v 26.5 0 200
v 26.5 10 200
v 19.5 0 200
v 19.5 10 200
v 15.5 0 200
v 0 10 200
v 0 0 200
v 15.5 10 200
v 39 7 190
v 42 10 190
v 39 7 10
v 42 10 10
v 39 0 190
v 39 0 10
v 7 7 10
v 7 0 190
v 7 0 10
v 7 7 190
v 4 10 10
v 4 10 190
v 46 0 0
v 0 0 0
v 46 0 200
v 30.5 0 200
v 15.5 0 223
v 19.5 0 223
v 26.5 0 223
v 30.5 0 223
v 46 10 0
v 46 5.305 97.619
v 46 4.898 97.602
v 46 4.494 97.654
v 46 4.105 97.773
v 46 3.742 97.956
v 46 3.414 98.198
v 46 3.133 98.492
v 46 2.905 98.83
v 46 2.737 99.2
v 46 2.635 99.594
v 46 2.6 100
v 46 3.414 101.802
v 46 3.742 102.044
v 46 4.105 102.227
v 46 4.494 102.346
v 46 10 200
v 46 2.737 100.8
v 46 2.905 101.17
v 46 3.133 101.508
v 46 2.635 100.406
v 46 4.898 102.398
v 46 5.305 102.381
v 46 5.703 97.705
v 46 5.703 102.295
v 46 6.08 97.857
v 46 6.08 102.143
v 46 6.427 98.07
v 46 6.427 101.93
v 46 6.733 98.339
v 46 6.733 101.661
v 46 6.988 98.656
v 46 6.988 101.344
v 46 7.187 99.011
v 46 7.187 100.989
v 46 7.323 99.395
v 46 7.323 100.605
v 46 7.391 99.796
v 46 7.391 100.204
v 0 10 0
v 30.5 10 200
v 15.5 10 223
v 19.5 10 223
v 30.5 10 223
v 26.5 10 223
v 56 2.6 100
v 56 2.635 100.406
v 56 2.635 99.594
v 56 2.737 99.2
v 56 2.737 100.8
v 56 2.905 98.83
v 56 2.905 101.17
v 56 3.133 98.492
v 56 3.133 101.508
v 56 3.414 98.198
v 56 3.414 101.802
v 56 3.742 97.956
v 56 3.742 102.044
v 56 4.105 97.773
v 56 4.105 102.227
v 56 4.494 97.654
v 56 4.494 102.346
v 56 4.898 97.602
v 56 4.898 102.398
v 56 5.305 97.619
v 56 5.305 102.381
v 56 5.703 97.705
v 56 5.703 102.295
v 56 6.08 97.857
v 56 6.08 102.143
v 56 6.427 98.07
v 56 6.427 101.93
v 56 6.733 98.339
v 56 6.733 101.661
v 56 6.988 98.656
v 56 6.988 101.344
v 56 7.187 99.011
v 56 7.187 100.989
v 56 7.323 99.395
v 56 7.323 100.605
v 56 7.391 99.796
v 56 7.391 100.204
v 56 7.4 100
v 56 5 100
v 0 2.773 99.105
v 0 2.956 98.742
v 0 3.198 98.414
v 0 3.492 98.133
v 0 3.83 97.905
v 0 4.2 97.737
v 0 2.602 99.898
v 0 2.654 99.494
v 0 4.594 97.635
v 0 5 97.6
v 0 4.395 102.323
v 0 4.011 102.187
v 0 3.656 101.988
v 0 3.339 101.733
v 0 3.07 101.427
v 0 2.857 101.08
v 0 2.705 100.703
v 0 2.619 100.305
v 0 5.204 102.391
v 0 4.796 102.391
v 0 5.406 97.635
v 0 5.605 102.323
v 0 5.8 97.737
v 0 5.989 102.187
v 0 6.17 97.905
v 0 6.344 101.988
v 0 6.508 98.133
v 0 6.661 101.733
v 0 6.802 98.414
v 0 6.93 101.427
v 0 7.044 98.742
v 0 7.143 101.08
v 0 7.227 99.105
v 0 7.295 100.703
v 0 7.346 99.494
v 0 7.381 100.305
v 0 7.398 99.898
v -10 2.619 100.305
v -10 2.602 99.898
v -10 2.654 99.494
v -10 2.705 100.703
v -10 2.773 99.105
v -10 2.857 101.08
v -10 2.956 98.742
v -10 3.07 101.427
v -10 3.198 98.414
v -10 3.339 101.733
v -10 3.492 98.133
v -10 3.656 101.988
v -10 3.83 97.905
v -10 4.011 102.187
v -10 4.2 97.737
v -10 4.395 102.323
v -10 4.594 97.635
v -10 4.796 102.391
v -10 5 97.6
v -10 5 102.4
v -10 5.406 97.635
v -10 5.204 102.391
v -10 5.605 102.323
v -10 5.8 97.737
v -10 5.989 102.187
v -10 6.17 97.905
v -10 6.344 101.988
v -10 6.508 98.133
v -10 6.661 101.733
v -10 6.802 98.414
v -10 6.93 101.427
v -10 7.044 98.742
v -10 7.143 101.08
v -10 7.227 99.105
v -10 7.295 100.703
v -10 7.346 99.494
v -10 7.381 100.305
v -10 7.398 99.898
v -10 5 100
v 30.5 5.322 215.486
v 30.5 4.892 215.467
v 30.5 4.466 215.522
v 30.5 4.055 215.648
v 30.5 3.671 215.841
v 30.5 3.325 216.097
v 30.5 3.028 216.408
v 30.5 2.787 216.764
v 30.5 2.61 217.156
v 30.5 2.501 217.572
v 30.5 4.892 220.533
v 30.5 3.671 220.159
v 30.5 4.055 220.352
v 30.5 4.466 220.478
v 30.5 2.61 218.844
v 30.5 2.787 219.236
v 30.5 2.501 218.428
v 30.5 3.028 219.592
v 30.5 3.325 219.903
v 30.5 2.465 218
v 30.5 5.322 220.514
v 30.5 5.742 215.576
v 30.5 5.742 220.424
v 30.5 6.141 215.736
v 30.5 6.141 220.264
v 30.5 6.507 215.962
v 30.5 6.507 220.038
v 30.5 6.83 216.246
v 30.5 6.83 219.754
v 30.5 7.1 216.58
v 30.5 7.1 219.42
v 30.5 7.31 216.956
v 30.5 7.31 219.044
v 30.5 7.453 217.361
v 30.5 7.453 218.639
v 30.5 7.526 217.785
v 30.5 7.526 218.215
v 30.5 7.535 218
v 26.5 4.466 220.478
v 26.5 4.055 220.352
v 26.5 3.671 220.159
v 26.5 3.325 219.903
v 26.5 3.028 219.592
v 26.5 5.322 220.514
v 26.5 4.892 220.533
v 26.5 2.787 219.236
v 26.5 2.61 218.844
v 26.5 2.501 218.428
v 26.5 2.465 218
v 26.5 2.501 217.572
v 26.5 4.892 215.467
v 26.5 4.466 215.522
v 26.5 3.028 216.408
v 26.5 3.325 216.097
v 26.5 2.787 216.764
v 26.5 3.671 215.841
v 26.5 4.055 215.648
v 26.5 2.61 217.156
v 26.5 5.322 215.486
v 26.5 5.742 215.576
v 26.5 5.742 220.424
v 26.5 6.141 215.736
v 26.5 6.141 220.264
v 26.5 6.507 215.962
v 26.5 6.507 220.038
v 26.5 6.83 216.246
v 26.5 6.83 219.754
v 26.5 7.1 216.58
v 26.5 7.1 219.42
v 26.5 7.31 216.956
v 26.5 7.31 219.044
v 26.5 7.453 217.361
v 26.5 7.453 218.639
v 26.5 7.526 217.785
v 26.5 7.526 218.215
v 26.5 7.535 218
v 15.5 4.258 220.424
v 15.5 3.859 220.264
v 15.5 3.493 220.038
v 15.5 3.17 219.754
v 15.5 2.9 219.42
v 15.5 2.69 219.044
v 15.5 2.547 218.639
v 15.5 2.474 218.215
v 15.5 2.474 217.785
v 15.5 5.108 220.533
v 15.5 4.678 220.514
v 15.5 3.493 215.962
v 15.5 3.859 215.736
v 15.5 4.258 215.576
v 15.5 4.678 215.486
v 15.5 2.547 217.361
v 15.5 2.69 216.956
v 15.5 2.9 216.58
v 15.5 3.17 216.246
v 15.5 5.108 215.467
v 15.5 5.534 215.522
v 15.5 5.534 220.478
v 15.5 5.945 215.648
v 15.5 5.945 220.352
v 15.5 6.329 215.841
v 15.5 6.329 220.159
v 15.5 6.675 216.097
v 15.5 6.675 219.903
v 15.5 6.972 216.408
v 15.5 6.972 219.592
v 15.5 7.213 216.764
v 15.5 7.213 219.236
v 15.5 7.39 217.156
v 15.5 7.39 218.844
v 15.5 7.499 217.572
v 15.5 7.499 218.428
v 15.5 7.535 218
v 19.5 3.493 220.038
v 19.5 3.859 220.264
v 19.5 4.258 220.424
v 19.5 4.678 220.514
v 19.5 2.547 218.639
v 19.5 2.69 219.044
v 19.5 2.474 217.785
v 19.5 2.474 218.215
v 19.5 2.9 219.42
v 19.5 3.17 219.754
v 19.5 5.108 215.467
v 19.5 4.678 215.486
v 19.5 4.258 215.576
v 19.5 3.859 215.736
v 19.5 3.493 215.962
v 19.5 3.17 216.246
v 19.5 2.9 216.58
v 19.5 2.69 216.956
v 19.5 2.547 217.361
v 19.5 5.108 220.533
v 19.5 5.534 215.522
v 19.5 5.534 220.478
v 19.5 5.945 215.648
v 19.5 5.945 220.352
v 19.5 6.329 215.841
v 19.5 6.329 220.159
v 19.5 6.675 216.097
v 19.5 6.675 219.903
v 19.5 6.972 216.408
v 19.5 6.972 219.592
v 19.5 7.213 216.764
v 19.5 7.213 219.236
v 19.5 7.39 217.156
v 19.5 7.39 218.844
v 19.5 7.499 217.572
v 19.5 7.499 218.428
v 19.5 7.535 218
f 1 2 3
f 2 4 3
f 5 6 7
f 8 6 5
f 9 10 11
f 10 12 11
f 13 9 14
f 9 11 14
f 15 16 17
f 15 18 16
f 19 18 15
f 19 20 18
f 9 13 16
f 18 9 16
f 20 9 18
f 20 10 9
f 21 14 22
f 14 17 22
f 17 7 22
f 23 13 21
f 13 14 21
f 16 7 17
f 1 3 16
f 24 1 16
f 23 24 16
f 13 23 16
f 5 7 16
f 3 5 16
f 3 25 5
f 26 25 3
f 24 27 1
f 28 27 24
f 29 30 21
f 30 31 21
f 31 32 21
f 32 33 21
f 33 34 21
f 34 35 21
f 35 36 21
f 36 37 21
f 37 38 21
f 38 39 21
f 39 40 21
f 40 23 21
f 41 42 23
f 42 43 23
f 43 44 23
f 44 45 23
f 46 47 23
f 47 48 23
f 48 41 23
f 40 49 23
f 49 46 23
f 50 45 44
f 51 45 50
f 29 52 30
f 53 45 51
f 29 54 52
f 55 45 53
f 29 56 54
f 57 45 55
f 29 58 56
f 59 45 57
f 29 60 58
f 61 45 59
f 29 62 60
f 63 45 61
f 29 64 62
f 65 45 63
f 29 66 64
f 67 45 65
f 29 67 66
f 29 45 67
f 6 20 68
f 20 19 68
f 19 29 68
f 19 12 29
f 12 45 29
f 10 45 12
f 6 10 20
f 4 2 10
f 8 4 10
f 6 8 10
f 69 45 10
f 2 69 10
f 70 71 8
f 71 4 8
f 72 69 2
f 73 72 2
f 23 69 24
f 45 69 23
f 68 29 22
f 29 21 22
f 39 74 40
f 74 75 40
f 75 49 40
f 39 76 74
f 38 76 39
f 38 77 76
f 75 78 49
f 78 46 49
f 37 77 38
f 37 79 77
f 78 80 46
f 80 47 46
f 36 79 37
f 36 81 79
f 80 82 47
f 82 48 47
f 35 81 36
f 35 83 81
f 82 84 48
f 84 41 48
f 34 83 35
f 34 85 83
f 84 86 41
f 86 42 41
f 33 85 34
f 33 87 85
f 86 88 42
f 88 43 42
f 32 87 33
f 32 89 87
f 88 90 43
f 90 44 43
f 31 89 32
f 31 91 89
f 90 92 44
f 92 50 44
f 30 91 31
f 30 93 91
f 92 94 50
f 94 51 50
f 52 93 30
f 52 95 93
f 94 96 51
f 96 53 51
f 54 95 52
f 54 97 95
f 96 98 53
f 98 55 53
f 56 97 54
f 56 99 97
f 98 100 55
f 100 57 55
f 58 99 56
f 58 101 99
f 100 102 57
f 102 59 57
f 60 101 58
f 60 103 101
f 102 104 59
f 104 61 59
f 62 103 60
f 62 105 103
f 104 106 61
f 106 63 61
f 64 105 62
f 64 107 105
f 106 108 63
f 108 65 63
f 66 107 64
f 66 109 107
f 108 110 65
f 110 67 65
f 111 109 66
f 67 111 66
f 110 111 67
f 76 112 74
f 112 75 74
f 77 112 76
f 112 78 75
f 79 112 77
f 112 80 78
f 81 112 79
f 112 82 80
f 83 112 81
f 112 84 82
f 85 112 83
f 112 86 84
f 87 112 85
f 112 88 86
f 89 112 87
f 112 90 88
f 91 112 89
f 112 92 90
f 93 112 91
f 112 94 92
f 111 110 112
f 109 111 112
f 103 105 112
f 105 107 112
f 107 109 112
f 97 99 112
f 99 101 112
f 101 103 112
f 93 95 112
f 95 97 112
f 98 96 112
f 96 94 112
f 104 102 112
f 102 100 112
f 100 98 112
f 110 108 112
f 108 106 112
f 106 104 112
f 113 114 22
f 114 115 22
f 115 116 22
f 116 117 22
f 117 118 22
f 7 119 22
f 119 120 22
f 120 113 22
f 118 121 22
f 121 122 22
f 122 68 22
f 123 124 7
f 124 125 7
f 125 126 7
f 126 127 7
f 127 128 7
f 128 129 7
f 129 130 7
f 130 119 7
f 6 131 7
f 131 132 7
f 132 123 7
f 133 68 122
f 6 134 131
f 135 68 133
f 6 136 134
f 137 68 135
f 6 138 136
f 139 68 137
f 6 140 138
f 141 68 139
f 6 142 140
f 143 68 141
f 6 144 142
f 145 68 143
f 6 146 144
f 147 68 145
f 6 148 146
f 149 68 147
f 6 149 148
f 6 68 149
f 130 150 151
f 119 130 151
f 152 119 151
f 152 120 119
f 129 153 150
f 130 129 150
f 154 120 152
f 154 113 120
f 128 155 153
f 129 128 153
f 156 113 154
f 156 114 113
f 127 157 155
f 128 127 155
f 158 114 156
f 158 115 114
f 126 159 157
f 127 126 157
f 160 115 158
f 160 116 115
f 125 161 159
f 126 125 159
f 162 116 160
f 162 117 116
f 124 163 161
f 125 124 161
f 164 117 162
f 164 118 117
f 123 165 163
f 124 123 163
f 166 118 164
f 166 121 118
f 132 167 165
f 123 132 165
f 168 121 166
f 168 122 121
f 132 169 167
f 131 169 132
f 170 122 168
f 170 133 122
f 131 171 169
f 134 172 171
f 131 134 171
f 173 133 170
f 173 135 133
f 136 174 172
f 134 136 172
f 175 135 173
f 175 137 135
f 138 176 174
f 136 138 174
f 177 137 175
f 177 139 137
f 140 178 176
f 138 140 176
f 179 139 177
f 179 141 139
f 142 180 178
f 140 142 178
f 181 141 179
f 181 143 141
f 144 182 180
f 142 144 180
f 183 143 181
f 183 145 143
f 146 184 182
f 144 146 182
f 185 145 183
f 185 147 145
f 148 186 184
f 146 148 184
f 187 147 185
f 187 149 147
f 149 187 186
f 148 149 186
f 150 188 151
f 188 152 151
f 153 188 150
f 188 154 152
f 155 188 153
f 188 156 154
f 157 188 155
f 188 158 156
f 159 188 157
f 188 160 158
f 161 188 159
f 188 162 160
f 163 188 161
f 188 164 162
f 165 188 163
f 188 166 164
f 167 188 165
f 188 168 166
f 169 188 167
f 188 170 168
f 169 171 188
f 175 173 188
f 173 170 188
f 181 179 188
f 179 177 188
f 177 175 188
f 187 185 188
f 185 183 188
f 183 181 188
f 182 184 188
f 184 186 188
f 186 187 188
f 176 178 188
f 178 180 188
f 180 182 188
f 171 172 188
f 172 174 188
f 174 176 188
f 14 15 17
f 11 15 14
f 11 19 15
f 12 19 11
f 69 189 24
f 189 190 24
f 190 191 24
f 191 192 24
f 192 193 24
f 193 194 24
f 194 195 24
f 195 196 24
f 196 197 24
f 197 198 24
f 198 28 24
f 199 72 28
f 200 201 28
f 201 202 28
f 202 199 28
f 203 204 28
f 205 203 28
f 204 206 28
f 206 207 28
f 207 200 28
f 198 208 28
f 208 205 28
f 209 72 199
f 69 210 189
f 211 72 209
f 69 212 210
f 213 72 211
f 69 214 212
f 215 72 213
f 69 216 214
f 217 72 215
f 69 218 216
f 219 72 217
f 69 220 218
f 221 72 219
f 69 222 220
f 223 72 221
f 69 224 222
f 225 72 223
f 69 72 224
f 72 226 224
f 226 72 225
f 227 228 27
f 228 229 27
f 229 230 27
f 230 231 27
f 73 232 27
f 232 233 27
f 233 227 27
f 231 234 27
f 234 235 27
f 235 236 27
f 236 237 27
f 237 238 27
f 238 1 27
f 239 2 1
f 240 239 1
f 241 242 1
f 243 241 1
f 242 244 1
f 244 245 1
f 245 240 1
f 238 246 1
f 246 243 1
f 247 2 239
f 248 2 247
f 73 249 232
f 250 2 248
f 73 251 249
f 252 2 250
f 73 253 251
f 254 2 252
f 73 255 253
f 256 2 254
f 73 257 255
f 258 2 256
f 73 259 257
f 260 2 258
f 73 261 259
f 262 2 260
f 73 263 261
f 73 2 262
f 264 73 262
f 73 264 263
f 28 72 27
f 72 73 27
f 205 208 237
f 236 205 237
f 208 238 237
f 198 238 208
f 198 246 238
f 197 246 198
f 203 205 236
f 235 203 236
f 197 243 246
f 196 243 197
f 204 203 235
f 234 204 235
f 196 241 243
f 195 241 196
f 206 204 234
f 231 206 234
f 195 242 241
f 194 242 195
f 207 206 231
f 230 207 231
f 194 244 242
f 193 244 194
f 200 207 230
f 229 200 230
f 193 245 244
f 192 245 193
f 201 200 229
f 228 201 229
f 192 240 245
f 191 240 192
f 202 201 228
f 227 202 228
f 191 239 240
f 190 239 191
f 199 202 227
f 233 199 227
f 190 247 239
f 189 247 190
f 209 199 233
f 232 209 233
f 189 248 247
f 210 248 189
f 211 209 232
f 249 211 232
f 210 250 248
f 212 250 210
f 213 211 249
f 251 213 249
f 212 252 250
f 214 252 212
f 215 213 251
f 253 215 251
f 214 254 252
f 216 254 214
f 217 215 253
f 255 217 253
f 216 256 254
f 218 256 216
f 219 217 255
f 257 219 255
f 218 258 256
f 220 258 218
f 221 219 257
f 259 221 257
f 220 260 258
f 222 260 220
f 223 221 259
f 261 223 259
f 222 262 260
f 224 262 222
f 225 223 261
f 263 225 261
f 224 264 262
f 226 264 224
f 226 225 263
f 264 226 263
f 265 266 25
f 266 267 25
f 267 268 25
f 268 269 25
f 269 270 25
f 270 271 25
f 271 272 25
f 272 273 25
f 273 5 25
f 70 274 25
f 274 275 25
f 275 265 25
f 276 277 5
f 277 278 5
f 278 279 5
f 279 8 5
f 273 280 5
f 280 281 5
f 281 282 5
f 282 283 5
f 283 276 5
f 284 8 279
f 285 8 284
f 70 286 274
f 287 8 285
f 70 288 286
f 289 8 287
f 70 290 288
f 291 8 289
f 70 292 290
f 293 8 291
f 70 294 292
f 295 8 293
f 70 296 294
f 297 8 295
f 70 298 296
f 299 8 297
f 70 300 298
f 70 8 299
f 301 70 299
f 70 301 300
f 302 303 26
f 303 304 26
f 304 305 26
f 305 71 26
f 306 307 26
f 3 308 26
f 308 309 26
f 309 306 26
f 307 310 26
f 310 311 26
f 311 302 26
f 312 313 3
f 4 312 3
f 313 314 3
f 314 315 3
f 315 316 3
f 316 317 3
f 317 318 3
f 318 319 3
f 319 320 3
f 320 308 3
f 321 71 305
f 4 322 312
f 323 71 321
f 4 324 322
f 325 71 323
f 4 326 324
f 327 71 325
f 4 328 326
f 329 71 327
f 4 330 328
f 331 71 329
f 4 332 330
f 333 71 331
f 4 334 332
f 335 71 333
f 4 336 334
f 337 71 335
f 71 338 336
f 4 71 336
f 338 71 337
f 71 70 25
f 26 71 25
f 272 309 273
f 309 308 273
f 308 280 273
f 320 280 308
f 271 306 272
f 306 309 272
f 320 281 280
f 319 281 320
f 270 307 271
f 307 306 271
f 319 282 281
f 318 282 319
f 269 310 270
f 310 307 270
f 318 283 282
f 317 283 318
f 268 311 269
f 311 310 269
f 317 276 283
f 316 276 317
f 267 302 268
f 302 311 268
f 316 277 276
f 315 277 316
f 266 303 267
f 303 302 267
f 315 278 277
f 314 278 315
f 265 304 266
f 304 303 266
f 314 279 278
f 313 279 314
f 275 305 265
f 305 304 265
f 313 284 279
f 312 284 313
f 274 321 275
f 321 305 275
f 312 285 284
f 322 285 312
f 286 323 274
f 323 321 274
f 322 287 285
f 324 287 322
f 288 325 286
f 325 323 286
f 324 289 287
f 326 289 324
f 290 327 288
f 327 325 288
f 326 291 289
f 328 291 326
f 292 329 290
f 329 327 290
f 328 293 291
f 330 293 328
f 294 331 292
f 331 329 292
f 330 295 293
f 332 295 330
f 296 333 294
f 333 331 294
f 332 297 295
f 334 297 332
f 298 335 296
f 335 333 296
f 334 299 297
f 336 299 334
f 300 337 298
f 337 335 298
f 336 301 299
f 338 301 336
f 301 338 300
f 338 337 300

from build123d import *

# Parameters (mm, degrees)
BOSS_EXTRUDE1_DEPTH   = 200
BOSS_EXTRUDE1_2_DEPTH = 200
SKETCH2_R             = 2.4
BOSS_EXTRUDE2_DEPTH   = 10
SKETCH3_R             = 2.4
BOSS_EXTRUDE3_DEPTH   = 10
SKETCH4_W             = 46
SKETCH4_H             = 10
BOSS_EXTRUDE4_DEPTH   = 10
BOSS_EXTRUDE5_START   = 3.5
SKETCH5_W             = 33
SKETCH5_H             = 10
SKETCH5_R             = 2.535
BOSS_EXTRUDE5_DEPTH   = 4


with BuildPart() as part:
    # Sketch1 → Boss-Extrude1 (new body)
    with BuildSketch(Plane.XY):
        Polygon((4, 10), (7, 7), (7, 0), (0, 0), (0, 10), align=None)
    extrude(amount=BOSS_EXTRUDE1_DEPTH)

    # Sketch3 → Boss-Extrude3 (add)
    with BuildSketch(Plane.ZY):
        with Locations((100, 5)):
            Circle(SKETCH3_R)
    extrude(amount=BOSS_EXTRUDE3_DEPTH)



with BuildPart() as body_2:
    # Sketch1 → Boss-Extrude1 2 (new body)
    with BuildSketch(Plane.XY):
        Polygon((39, 0), (39, 7), (42, 10), (46, 10), (46, 0), align=None)
    extrude(amount=BOSS_EXTRUDE1_2_DEPTH)

    # Sketch2 → Boss-Extrude2 (add)
    with BuildSketch(Plane(origin=(46, 0, 0), x_dir=(0, 0, -1), z_dir=(1, 0, 0))):
        with Locations((-100, 5)):
            Circle(SKETCH2_R)
    extrude(amount=BOSS_EXTRUDE2_DEPTH)


with BuildPart() as part_1:
    add(part.part)

    add(body_2.part)  # Boss-Extrude4 merges body 2
    # Sketch4 → Boss-Extrude4 (add)
    with BuildSketch(Plane.XZ):
        with Locations((23, 195)):
            Rectangle(SKETCH4_W, SKETCH4_H)
    boss_extrude4 = extrude(amount=-BOSS_EXTRUDE4_DEPTH)

    # Mirror3: Boss-Extrude4 across plane
    add(boss_extrude4.mirror(Plane(origin=(0, 0, 100), x_dir=(1, 0, 0), z_dir=(0, 0, -1))))

    # Sketch5 → Boss-Extrude5 (add)
    with BuildSketch(Plane(origin=(23, 0, 0), x_dir=(0, 0, -1), z_dir=(1, 0, 0)).offset(BOSS_EXTRUDE5_START)):
        with Locations((-206.5, 5)):
            Rectangle(SKETCH5_W, SKETCH5_H)
        with Locations((-218, 5)):
            Circle(SKETCH5_R, mode=Mode.SUBTRACT)
    boss_extrude5 = extrude(amount=BOSS_EXTRUDE5_DEPTH)

    # Mirror4: Boss-Extrude5 across plane
    add(boss_extrude5.mirror(Plane(origin=(23, 0, 0), x_dir=(0, 0, 1), z_dir=(1, 0, 0))))


solid = part_1.part
